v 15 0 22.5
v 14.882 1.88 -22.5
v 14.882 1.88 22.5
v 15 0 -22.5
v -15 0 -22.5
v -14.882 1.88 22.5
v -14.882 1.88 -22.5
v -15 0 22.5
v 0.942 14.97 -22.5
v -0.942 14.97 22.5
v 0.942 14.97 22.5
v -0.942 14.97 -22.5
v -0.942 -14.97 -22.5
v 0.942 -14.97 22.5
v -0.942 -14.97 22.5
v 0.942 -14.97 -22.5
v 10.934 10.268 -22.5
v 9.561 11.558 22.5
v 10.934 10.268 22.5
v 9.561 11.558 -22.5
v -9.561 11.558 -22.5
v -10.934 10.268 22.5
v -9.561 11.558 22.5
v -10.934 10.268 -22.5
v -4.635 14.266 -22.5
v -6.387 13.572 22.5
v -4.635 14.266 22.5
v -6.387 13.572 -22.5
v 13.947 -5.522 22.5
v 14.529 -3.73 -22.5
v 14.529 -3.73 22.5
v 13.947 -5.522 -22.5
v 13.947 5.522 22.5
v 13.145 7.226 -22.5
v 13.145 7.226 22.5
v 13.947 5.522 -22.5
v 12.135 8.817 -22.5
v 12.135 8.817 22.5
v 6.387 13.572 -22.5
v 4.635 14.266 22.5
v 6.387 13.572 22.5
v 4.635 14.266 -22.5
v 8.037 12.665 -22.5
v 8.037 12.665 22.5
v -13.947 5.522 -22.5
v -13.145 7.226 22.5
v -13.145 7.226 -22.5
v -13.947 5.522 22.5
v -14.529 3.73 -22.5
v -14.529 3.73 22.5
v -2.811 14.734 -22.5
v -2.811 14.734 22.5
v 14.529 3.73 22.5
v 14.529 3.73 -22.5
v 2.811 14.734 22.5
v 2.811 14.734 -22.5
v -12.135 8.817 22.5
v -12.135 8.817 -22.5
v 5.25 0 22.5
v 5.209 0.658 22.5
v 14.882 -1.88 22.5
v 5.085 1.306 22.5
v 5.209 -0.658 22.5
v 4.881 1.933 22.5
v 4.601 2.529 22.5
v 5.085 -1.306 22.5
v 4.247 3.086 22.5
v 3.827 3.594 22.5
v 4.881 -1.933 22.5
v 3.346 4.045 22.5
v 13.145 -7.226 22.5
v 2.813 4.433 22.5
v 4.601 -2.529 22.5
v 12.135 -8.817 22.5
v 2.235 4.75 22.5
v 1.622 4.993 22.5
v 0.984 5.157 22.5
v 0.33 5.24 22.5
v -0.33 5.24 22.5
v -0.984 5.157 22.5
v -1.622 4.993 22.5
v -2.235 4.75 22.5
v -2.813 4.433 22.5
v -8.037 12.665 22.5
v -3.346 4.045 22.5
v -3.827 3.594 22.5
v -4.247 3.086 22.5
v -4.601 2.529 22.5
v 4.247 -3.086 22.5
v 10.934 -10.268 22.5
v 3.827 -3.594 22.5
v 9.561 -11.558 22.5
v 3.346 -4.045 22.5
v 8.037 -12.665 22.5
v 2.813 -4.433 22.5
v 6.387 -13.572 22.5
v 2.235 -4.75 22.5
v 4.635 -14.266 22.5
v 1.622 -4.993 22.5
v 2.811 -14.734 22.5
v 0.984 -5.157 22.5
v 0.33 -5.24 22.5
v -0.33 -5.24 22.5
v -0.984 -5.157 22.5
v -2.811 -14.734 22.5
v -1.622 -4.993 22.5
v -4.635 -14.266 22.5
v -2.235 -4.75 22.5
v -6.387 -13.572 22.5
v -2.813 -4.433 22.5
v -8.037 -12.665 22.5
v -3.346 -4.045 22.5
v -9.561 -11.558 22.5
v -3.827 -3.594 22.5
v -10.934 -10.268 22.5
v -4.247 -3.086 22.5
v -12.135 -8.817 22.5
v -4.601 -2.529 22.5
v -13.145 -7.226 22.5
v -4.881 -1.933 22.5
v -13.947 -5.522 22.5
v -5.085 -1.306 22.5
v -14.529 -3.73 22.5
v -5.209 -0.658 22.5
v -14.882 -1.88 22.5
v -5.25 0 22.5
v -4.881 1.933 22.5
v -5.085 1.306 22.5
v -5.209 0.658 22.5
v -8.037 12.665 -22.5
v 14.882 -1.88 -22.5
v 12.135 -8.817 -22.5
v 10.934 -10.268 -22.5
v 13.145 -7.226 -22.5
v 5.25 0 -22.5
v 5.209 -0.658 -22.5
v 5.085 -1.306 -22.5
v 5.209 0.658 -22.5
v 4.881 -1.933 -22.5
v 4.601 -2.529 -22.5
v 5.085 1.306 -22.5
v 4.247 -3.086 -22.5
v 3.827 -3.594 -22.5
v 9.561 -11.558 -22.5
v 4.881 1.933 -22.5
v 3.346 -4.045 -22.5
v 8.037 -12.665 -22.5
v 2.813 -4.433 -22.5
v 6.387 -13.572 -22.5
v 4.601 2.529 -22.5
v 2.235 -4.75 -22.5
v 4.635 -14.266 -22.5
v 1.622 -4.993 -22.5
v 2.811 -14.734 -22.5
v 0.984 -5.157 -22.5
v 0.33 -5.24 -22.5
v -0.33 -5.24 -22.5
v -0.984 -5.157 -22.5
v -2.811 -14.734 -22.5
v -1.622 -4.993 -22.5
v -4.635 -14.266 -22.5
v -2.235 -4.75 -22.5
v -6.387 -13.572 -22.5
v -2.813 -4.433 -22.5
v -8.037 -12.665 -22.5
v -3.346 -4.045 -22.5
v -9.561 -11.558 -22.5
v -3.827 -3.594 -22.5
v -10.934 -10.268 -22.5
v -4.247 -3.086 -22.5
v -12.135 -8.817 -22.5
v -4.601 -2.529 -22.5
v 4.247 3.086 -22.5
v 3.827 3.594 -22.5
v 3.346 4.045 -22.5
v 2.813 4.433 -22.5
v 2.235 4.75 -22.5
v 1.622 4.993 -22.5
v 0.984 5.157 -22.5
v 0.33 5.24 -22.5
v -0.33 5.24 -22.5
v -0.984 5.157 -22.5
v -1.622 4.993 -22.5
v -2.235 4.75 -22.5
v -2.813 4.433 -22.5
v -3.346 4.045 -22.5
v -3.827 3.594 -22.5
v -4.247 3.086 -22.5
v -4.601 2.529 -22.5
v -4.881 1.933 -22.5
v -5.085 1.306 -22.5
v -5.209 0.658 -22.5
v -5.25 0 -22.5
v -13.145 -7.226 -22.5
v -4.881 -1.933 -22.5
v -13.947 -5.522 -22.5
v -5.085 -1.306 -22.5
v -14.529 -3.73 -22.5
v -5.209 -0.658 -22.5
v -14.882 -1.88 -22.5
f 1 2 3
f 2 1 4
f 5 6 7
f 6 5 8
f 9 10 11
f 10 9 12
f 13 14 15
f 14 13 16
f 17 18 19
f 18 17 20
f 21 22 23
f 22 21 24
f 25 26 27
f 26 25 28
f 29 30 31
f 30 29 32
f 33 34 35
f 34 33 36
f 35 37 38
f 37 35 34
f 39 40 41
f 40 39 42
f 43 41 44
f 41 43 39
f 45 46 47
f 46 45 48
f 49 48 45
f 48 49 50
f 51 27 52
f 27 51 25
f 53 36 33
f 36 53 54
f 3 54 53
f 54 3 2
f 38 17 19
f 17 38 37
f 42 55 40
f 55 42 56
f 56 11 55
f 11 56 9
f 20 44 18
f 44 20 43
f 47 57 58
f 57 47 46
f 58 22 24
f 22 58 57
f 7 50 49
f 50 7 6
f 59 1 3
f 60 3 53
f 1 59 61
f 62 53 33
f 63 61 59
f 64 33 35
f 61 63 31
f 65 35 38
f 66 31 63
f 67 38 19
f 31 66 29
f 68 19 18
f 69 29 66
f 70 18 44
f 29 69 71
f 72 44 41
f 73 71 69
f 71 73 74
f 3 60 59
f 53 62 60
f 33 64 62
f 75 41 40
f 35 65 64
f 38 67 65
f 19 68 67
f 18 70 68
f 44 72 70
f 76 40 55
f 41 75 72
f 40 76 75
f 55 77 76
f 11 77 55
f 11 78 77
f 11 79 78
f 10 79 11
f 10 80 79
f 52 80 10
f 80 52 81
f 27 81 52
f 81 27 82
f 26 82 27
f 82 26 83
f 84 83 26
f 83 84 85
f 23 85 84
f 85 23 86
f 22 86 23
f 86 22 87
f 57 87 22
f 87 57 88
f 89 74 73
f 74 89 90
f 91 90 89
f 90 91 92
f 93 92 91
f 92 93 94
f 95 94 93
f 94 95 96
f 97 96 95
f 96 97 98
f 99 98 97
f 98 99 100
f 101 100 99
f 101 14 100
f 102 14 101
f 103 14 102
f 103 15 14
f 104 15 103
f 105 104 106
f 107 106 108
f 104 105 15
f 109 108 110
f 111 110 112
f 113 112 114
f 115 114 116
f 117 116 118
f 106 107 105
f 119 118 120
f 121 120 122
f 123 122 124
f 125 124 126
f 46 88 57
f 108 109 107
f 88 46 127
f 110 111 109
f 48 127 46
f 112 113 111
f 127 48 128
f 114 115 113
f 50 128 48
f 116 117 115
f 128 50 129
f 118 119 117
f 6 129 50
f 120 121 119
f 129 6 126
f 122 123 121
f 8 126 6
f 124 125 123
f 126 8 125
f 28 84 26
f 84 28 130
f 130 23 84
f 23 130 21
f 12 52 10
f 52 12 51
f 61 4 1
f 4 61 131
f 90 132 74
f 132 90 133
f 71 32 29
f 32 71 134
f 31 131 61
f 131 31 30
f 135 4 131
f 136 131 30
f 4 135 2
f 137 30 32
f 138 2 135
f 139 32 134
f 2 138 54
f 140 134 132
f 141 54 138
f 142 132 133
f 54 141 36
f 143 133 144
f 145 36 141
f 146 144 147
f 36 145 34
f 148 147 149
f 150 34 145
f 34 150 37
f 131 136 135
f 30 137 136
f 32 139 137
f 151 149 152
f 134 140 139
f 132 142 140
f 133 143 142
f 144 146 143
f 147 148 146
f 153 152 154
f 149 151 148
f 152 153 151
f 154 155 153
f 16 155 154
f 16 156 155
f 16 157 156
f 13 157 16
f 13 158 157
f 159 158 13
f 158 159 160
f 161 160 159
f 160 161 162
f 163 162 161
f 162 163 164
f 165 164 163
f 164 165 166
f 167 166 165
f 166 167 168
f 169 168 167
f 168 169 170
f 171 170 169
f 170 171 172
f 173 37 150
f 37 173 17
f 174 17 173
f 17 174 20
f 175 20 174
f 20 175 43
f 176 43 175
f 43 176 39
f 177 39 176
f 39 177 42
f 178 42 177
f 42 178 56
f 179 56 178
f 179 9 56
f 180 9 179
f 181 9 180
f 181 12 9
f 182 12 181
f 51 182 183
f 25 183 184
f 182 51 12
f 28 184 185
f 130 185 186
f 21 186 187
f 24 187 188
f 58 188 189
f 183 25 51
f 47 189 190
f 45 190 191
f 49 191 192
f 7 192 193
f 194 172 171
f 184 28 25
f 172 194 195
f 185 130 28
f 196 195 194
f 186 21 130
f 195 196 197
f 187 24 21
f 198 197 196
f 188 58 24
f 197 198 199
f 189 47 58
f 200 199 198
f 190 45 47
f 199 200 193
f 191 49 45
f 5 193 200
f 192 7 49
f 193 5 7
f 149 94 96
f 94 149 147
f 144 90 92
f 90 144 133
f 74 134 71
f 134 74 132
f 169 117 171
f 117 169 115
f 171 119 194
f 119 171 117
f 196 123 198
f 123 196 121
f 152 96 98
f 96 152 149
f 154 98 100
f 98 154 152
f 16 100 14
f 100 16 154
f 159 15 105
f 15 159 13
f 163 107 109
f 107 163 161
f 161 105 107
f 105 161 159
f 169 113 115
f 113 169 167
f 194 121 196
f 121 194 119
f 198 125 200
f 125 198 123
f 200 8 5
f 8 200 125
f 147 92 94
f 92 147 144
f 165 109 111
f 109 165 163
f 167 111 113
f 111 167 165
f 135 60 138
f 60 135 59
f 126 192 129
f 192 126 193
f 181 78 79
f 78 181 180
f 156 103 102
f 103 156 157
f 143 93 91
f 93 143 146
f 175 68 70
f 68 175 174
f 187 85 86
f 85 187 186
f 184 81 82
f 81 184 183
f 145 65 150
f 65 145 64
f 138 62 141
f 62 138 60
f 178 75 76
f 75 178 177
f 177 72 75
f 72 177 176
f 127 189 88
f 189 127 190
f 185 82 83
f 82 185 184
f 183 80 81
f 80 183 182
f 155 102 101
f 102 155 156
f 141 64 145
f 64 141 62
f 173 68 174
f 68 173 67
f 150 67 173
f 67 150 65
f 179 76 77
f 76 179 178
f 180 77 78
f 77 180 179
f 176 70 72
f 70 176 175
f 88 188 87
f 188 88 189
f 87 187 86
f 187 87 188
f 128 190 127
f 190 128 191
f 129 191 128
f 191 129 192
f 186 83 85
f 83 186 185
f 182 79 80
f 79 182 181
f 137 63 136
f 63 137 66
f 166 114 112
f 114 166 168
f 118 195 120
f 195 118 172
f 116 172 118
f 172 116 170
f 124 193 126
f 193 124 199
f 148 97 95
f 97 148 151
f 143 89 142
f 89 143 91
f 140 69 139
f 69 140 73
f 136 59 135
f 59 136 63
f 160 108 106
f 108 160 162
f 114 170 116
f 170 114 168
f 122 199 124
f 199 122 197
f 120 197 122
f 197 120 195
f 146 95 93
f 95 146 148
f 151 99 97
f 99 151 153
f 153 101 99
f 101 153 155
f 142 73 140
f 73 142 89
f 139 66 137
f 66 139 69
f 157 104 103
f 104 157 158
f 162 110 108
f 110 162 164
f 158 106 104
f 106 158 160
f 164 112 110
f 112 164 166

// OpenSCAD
$fn = 50;


difference() {
	union() {
		translate(v = [0, 0, -22.5000000000]) {
			cylinder(h = 45, r = 15.0000000000);
		}
	}
	union() {
		translate(v = [0, 0, -100.0000000000]) {
			cylinder(h = 200, r = 5.2500000000);
		}
	}
}
